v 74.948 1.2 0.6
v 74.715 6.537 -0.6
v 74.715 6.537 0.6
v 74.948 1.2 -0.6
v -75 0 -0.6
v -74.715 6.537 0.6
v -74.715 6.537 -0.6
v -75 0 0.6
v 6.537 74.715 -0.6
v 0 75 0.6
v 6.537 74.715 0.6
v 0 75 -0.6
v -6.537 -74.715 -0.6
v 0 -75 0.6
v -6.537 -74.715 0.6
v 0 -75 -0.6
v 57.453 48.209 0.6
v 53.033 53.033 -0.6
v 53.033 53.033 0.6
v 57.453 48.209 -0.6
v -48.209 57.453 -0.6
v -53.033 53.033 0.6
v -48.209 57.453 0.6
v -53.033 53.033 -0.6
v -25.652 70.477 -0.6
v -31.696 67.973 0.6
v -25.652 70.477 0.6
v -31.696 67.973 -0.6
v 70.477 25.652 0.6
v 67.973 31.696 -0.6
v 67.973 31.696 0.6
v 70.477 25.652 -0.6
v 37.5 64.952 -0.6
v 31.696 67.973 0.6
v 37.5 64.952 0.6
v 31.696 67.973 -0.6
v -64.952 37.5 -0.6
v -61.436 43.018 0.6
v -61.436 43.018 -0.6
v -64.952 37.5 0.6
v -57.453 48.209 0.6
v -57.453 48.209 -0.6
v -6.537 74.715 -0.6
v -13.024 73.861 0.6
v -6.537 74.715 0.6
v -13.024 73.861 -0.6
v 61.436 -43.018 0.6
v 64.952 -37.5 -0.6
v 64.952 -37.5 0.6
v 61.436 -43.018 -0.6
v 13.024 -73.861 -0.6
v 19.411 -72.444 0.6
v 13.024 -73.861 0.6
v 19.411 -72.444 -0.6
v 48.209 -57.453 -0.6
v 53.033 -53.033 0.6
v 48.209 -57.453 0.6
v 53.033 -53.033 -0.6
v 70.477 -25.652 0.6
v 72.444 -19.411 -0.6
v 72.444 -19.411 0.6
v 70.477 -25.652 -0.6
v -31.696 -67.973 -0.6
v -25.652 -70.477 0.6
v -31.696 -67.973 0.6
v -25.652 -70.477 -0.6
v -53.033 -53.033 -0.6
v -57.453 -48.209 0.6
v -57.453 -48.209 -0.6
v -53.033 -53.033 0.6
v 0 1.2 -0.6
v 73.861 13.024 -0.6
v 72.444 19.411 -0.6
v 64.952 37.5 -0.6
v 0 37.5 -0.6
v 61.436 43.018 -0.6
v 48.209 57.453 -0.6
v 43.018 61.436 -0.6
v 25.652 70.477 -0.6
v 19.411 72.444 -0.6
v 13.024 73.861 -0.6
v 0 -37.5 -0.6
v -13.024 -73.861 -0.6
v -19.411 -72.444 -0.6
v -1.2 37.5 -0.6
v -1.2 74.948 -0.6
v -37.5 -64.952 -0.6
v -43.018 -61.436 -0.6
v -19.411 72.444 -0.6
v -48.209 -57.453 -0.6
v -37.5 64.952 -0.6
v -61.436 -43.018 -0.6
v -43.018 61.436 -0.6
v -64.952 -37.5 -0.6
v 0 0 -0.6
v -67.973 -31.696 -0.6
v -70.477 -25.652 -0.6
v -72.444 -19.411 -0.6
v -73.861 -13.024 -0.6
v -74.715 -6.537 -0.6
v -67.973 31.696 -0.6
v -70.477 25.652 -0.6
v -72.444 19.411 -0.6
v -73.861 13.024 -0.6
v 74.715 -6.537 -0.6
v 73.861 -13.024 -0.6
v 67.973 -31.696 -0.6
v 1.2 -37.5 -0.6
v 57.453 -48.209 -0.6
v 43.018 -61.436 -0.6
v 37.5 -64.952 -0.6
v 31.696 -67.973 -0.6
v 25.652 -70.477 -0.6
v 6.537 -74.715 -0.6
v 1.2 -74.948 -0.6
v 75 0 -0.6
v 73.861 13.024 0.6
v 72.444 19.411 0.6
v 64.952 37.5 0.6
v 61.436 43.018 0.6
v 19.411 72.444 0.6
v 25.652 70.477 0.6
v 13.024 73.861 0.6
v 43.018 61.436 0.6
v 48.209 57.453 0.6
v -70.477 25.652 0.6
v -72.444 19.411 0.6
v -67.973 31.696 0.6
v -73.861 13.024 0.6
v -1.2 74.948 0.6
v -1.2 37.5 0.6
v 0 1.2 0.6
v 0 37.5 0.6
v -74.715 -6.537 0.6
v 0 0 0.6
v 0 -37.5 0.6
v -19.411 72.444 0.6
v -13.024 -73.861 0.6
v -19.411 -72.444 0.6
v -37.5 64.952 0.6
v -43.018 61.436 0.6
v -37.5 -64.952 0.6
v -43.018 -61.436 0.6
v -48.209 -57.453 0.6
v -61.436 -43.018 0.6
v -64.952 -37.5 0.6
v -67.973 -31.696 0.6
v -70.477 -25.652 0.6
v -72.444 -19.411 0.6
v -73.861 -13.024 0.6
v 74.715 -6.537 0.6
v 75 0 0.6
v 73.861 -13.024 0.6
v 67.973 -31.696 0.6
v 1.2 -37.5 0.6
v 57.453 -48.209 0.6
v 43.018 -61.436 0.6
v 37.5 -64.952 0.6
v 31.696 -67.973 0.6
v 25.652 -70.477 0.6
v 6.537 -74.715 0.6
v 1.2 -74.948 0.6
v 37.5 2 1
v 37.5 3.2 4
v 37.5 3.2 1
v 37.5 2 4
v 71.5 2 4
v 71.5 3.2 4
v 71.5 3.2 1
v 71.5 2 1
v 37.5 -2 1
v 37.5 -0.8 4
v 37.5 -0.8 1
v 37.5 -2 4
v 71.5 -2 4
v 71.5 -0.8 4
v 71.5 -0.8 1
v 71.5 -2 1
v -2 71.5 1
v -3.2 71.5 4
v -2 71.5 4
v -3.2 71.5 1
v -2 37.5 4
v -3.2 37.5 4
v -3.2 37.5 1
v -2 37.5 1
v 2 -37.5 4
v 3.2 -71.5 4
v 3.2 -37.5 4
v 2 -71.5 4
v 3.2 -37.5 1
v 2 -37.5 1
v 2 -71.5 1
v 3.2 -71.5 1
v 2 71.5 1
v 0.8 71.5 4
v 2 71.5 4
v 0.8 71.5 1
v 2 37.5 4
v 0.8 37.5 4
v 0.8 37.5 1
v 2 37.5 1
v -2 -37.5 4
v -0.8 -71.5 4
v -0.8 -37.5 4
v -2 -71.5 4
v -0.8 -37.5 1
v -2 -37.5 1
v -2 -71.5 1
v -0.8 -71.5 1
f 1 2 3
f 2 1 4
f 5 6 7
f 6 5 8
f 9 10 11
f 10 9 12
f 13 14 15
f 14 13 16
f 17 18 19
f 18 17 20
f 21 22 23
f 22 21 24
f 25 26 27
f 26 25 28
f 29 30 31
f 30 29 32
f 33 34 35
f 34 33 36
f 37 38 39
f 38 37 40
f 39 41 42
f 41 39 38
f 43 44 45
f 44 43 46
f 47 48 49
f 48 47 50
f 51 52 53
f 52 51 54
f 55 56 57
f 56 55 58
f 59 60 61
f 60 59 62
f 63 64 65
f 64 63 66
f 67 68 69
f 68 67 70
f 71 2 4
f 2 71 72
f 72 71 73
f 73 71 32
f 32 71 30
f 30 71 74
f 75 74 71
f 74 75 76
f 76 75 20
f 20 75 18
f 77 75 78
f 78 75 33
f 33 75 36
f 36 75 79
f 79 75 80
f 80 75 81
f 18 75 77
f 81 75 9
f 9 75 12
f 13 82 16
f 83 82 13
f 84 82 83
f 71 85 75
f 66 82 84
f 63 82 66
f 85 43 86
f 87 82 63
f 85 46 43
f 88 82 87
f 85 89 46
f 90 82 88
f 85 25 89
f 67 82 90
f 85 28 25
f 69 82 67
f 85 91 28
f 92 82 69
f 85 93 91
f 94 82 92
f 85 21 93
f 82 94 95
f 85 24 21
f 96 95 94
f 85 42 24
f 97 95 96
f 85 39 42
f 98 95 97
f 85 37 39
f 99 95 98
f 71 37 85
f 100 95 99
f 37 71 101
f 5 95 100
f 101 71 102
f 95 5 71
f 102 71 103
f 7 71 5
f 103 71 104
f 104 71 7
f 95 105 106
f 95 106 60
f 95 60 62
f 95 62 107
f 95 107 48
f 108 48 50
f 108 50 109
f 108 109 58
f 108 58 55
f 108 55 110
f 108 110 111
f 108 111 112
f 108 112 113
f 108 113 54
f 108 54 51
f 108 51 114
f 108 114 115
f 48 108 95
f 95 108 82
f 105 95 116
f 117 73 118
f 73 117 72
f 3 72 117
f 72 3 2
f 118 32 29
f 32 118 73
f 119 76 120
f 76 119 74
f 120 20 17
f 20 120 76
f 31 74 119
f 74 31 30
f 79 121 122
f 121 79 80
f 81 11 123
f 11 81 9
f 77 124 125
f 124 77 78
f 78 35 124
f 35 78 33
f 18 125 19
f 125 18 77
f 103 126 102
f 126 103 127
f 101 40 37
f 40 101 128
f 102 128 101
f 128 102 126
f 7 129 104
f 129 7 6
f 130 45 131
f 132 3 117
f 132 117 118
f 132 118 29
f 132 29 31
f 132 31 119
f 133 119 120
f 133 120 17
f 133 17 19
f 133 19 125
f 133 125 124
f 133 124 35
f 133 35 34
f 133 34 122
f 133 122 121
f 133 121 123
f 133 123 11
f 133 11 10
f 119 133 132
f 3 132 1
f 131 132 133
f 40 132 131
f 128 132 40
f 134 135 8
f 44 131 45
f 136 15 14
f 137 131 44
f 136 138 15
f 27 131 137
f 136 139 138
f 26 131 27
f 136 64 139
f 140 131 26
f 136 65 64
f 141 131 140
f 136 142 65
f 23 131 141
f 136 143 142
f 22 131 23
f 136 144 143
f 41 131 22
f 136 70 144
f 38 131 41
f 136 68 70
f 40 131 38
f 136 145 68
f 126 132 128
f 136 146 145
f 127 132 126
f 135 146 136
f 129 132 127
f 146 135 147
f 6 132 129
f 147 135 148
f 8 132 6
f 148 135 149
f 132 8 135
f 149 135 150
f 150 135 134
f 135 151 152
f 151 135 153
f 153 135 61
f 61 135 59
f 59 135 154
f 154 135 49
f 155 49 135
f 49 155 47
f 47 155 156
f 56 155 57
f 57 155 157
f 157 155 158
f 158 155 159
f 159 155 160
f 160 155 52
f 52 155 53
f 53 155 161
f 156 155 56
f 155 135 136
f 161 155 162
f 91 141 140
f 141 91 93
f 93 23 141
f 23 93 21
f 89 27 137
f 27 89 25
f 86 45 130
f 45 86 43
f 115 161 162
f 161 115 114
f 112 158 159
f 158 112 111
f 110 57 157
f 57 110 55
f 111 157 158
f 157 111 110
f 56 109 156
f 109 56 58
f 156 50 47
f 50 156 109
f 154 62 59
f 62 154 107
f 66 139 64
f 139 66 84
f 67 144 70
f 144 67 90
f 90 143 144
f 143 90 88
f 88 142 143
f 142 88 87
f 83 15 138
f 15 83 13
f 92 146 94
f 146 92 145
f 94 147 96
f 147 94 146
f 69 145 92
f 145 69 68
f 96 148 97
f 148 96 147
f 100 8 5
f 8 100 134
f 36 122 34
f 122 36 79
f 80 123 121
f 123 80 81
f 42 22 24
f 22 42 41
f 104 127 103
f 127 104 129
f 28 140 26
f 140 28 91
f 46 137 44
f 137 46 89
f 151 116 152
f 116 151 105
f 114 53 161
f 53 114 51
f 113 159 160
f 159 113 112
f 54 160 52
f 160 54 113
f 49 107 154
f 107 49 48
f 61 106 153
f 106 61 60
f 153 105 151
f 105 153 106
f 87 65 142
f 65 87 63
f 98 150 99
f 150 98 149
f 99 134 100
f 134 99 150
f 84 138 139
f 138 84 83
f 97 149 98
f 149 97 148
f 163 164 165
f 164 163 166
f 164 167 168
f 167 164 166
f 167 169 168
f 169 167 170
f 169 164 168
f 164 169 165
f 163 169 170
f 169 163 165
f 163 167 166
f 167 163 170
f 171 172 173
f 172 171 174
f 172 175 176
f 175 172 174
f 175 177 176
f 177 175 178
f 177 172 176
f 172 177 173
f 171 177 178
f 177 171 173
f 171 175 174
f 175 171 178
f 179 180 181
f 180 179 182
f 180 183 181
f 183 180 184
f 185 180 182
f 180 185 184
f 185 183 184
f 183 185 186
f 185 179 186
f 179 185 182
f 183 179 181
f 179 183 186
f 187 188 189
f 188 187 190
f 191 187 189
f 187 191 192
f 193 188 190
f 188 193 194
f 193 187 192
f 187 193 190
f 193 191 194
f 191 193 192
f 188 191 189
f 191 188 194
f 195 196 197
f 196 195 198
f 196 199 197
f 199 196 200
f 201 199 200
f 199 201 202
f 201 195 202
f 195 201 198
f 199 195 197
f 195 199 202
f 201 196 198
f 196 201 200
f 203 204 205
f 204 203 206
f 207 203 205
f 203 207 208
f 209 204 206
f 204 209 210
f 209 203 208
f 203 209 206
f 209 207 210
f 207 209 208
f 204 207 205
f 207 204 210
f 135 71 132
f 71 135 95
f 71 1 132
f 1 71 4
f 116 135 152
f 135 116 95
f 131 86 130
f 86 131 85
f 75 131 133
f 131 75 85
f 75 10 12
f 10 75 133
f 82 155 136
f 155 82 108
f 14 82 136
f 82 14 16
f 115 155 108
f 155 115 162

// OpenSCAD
// CSG-modules.scad - Basic usage of modules, if, color, $fs/$fa

// Global resolution
$fs = 0.1;  // Don't generate smaller facets than 0.1 mm
$fa = 5;    // Don't generate larger angles than 5 degrees

difference(){
    union(){
    base();
        riser1();
        riser2();
            rotate([0,0,90]) riser1();
            rotate([0,0,270]) riser1();
            rotate([0,0,90]) riser2();
            rotate([0,0,270]) riser2();        
    }
    baseSlot();
    rotate([0,0,90]) translate([37.5,0,0]) baseSlot();
    rotate([0,0,270]) translate([37.5,0,0]) baseSlot();

}


//rotate([0,0,90]) translate([37.5,0,0]) baseASlot();

module base() {
    color("Blue") cylinder(h=1.2, r=75, center=true);
    }
    
module baseSlot() {
    color("Red") translate([0,0,-3]) cube([76, 1.2, 6]); 
    }
   
module riser1() {
    color("Yellow") translate([37.5,2,1]) cube([34,1.2,3]);
    }    
    
module riser2() {
    color("Green") translate([37.5,-2,1]) cube([34,1.2,3]);
    }
